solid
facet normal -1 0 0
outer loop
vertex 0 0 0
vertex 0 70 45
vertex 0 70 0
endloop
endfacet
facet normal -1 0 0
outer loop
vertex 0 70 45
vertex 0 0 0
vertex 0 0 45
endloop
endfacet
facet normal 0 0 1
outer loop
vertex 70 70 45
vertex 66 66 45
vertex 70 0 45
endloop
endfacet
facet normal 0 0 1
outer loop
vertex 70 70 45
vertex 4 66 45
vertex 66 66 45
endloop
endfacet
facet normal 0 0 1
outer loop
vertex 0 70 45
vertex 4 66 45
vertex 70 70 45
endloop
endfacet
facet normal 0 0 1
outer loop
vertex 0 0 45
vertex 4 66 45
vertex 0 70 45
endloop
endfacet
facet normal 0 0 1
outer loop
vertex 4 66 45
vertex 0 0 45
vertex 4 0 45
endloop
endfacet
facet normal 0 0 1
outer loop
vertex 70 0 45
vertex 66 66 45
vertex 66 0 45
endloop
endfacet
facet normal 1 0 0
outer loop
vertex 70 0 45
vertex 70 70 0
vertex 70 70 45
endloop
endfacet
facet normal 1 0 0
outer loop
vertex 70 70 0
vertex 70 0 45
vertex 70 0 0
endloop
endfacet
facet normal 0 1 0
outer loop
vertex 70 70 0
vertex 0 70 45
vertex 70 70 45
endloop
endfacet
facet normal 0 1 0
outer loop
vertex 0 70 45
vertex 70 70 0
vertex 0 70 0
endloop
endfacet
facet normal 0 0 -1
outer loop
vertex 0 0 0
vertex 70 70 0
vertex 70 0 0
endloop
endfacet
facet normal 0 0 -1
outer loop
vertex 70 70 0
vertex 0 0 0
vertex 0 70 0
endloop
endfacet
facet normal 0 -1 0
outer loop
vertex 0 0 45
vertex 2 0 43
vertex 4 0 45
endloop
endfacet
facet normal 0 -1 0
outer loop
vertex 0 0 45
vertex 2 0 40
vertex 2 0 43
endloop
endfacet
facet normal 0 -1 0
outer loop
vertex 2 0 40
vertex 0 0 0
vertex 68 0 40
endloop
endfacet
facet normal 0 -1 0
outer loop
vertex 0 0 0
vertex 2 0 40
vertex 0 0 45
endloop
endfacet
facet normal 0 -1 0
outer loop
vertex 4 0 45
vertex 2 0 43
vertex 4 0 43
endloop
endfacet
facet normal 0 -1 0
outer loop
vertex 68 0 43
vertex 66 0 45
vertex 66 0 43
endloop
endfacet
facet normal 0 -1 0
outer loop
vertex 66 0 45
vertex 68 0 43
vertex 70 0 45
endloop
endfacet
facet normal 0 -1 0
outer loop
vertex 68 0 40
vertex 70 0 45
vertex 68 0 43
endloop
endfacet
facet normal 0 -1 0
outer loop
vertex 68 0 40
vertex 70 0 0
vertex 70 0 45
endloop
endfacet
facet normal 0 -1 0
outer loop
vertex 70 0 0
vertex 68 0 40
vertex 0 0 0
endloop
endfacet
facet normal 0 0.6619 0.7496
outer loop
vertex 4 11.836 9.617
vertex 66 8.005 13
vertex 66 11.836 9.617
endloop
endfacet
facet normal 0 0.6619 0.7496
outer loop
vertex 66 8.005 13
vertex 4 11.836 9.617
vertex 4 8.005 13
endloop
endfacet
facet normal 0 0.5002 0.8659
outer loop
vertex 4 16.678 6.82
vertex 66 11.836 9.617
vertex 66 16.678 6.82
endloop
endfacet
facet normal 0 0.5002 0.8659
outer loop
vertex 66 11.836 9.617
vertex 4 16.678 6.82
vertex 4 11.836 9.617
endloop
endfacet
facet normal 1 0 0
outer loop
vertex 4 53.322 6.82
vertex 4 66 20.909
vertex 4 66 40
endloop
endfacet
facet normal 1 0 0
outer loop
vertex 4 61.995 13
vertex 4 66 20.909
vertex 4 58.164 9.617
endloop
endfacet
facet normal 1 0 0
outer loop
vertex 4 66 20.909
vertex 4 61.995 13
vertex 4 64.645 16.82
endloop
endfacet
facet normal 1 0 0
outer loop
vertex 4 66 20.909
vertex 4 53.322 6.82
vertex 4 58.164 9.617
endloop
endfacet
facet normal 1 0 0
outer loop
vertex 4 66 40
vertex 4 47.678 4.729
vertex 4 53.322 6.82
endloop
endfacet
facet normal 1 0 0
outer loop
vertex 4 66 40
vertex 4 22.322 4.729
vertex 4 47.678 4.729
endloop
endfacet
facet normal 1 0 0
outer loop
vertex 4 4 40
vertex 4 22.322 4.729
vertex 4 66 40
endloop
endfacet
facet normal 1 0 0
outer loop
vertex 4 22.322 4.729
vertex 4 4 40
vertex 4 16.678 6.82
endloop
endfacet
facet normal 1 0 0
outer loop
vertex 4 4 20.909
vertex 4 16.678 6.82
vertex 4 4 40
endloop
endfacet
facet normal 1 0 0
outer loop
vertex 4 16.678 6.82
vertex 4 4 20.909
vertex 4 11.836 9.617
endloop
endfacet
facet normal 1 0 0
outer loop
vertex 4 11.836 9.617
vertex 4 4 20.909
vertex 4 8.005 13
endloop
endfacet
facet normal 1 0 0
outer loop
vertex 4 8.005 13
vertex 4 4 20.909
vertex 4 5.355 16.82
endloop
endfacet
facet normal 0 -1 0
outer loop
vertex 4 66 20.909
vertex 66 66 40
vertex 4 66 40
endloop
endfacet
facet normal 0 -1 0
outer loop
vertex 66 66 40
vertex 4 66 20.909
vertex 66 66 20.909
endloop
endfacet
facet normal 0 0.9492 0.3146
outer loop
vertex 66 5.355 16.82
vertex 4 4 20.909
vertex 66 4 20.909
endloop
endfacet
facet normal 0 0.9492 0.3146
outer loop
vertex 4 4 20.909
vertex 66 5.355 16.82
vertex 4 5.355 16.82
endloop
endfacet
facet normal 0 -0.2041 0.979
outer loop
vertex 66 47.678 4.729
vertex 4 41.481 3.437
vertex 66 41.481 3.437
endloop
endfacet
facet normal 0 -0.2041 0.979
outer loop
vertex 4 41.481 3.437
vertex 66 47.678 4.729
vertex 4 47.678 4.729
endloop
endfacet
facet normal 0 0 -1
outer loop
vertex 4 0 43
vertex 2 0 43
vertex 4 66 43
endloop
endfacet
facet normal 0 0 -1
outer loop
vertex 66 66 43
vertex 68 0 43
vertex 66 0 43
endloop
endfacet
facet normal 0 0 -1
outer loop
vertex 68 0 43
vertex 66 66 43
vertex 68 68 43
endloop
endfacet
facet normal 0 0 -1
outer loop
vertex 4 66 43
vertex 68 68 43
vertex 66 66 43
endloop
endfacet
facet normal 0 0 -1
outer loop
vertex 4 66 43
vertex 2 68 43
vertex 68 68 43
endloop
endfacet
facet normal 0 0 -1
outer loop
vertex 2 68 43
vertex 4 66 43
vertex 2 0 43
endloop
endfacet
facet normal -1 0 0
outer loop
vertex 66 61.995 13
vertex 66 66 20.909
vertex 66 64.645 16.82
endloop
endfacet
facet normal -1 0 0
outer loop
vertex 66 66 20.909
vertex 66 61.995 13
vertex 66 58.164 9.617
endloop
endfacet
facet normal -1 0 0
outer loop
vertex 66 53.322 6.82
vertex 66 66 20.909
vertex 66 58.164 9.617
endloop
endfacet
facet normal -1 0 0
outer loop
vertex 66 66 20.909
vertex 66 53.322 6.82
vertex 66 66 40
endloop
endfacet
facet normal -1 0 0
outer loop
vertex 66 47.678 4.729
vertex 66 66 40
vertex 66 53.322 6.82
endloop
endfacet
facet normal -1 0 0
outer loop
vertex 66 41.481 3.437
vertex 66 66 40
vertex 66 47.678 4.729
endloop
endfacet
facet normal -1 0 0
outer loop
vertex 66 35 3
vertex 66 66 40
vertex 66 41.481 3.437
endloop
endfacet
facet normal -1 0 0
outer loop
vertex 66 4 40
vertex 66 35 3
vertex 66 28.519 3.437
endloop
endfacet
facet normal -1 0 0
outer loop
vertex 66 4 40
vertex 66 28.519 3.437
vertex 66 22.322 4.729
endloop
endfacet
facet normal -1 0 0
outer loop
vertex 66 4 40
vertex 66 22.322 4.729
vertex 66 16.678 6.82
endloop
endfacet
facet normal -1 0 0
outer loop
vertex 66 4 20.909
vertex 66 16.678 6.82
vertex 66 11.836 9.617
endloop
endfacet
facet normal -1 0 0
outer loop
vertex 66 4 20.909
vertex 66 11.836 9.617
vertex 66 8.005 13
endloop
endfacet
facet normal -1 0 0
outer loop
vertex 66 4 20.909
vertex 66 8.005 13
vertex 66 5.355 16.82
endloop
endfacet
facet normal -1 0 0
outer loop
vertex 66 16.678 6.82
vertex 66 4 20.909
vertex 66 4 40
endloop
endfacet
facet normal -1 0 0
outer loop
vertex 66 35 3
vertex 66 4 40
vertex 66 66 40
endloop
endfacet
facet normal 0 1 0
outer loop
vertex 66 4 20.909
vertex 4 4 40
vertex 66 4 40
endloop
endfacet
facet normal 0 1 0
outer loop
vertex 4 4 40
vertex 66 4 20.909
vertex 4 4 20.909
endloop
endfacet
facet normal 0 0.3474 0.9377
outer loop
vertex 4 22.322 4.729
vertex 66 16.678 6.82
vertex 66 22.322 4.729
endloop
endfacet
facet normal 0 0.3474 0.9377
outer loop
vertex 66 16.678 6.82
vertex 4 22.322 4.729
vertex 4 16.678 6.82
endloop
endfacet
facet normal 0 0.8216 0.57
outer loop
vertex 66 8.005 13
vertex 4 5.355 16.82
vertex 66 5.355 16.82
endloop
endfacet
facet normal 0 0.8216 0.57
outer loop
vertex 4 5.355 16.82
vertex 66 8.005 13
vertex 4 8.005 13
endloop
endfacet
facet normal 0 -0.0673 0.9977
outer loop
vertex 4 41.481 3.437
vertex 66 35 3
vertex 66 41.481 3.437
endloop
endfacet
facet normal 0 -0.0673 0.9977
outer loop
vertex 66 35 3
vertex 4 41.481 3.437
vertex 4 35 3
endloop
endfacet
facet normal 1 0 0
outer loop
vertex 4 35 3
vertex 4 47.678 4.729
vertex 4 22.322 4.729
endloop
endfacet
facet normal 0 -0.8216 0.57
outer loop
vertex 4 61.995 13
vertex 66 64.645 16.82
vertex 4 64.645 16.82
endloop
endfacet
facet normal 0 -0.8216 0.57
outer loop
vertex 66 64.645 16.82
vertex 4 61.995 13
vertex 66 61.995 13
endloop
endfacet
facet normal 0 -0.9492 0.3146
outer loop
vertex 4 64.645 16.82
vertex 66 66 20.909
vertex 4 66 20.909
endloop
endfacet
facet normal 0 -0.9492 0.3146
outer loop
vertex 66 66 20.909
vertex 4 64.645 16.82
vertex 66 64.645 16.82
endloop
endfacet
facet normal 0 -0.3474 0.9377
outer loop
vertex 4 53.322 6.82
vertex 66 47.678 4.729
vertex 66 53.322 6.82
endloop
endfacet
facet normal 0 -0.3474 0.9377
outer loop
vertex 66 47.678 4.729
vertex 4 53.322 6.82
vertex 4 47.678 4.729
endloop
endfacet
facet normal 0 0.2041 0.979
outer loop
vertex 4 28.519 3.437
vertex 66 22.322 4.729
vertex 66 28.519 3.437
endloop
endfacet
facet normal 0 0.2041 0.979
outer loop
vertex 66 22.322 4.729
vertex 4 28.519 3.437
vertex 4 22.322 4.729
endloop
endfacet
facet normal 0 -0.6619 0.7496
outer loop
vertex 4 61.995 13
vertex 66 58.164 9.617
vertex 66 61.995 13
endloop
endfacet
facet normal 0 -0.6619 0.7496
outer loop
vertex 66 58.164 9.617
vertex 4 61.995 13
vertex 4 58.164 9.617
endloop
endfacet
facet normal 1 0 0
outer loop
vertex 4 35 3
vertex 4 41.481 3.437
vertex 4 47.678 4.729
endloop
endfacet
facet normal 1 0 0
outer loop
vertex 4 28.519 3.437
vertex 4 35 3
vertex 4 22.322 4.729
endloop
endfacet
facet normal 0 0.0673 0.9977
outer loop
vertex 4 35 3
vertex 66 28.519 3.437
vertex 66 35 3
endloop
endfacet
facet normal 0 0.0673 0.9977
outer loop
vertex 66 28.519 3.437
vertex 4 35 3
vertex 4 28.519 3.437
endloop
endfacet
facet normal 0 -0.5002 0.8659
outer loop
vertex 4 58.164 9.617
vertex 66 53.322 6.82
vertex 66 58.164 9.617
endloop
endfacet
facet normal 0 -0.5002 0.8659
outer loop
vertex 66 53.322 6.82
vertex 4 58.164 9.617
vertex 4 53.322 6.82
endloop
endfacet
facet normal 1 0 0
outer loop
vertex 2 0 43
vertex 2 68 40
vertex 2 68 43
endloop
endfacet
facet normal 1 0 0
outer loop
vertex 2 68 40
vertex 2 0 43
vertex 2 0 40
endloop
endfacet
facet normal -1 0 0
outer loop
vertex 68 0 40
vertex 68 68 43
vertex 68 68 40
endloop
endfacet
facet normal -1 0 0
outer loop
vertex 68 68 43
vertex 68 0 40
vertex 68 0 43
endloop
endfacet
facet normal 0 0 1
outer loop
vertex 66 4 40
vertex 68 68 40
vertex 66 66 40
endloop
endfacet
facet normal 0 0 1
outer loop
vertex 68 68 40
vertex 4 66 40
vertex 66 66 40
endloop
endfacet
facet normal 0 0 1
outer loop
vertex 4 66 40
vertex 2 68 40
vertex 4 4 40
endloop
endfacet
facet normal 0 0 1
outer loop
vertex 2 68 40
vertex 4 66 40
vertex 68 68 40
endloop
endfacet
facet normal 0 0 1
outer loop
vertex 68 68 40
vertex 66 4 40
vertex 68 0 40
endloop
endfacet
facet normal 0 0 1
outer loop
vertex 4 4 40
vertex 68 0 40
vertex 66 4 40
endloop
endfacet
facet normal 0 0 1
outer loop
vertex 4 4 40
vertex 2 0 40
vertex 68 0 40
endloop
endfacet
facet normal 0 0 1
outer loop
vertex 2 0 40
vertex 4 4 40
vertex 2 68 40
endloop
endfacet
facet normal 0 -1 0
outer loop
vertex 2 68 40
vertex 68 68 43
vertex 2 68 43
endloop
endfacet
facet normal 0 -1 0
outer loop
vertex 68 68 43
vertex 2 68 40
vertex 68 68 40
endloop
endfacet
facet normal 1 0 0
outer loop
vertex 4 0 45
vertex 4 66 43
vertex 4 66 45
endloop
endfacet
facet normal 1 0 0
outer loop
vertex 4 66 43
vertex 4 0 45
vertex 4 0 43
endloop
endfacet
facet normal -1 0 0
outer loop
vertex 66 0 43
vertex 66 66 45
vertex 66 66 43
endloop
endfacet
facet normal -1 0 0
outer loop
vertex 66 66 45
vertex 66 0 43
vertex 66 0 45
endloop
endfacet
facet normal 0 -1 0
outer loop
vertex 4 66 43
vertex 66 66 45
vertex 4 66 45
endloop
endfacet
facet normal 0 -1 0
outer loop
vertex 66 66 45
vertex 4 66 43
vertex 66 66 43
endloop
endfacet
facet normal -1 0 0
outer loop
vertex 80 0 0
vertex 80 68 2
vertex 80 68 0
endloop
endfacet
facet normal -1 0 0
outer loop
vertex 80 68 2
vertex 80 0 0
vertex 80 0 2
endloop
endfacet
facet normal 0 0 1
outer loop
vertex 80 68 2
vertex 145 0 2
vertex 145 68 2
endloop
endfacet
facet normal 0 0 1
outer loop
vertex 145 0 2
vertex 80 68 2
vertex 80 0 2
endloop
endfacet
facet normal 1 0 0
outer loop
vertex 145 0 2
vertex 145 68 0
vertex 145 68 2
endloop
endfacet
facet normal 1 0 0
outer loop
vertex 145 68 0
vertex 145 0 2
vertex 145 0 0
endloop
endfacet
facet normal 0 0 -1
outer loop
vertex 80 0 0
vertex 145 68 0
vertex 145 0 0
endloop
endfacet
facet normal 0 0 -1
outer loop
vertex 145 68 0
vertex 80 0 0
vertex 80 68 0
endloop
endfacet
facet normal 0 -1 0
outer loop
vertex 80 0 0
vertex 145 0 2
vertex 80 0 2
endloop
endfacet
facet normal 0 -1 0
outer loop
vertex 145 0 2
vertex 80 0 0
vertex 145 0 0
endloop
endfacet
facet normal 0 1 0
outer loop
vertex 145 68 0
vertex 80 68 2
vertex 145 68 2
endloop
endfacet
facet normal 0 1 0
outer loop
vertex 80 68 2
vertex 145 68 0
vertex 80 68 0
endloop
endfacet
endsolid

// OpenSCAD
height = 45;
length = 70;
width = 70;
innerWall = 2;
outerWall = 4;
lip = 4;
coverWall = 2;
coverThickness = 2;
coverGap = 3;
floorThickness = 3;
compartmentWidth = width - outerWall - outerWall;
compartmentHeight = height - coverGap - coverWall;
compartmentLength = length - outerWall - outerWall;

union(){
difference(){
difference(){
    cube([length, width, height]);
    translate([outerWall,outerWall,(floorThickness)])
union(){
//cube([compartmentLength, compartmentWidth,compartmentHeight]);
    rotate([0,90,0])
    translate([-compartmentHeight/2, compartmentWidth/2,0])
linear_extrude(height = compartmentLength, center = false){
union(){
    resize([compartmentHeight,compartmentWidth])circle(d=20);
    translate([-compartmentHeight/2,-compartmentWidth/2,0])
    square([compartmentHeight/2, compartmentWidth]);
    };
};
};
};

    union(){
        translate([innerWall, 0, height - coverGap - coverWall])
        cube([length - innerWall - innerWall, width - innerWall, coverGap]);
        translate([outerWall, 0, height - coverWall])
        cube([length - outerWall - outerWall, width - outerWall, coverWall]);
    }
};
translate([length + 10, 0,0])
cube([length - coverWall - coverWall - 1, width - coverWall, coverThickness]);
};
